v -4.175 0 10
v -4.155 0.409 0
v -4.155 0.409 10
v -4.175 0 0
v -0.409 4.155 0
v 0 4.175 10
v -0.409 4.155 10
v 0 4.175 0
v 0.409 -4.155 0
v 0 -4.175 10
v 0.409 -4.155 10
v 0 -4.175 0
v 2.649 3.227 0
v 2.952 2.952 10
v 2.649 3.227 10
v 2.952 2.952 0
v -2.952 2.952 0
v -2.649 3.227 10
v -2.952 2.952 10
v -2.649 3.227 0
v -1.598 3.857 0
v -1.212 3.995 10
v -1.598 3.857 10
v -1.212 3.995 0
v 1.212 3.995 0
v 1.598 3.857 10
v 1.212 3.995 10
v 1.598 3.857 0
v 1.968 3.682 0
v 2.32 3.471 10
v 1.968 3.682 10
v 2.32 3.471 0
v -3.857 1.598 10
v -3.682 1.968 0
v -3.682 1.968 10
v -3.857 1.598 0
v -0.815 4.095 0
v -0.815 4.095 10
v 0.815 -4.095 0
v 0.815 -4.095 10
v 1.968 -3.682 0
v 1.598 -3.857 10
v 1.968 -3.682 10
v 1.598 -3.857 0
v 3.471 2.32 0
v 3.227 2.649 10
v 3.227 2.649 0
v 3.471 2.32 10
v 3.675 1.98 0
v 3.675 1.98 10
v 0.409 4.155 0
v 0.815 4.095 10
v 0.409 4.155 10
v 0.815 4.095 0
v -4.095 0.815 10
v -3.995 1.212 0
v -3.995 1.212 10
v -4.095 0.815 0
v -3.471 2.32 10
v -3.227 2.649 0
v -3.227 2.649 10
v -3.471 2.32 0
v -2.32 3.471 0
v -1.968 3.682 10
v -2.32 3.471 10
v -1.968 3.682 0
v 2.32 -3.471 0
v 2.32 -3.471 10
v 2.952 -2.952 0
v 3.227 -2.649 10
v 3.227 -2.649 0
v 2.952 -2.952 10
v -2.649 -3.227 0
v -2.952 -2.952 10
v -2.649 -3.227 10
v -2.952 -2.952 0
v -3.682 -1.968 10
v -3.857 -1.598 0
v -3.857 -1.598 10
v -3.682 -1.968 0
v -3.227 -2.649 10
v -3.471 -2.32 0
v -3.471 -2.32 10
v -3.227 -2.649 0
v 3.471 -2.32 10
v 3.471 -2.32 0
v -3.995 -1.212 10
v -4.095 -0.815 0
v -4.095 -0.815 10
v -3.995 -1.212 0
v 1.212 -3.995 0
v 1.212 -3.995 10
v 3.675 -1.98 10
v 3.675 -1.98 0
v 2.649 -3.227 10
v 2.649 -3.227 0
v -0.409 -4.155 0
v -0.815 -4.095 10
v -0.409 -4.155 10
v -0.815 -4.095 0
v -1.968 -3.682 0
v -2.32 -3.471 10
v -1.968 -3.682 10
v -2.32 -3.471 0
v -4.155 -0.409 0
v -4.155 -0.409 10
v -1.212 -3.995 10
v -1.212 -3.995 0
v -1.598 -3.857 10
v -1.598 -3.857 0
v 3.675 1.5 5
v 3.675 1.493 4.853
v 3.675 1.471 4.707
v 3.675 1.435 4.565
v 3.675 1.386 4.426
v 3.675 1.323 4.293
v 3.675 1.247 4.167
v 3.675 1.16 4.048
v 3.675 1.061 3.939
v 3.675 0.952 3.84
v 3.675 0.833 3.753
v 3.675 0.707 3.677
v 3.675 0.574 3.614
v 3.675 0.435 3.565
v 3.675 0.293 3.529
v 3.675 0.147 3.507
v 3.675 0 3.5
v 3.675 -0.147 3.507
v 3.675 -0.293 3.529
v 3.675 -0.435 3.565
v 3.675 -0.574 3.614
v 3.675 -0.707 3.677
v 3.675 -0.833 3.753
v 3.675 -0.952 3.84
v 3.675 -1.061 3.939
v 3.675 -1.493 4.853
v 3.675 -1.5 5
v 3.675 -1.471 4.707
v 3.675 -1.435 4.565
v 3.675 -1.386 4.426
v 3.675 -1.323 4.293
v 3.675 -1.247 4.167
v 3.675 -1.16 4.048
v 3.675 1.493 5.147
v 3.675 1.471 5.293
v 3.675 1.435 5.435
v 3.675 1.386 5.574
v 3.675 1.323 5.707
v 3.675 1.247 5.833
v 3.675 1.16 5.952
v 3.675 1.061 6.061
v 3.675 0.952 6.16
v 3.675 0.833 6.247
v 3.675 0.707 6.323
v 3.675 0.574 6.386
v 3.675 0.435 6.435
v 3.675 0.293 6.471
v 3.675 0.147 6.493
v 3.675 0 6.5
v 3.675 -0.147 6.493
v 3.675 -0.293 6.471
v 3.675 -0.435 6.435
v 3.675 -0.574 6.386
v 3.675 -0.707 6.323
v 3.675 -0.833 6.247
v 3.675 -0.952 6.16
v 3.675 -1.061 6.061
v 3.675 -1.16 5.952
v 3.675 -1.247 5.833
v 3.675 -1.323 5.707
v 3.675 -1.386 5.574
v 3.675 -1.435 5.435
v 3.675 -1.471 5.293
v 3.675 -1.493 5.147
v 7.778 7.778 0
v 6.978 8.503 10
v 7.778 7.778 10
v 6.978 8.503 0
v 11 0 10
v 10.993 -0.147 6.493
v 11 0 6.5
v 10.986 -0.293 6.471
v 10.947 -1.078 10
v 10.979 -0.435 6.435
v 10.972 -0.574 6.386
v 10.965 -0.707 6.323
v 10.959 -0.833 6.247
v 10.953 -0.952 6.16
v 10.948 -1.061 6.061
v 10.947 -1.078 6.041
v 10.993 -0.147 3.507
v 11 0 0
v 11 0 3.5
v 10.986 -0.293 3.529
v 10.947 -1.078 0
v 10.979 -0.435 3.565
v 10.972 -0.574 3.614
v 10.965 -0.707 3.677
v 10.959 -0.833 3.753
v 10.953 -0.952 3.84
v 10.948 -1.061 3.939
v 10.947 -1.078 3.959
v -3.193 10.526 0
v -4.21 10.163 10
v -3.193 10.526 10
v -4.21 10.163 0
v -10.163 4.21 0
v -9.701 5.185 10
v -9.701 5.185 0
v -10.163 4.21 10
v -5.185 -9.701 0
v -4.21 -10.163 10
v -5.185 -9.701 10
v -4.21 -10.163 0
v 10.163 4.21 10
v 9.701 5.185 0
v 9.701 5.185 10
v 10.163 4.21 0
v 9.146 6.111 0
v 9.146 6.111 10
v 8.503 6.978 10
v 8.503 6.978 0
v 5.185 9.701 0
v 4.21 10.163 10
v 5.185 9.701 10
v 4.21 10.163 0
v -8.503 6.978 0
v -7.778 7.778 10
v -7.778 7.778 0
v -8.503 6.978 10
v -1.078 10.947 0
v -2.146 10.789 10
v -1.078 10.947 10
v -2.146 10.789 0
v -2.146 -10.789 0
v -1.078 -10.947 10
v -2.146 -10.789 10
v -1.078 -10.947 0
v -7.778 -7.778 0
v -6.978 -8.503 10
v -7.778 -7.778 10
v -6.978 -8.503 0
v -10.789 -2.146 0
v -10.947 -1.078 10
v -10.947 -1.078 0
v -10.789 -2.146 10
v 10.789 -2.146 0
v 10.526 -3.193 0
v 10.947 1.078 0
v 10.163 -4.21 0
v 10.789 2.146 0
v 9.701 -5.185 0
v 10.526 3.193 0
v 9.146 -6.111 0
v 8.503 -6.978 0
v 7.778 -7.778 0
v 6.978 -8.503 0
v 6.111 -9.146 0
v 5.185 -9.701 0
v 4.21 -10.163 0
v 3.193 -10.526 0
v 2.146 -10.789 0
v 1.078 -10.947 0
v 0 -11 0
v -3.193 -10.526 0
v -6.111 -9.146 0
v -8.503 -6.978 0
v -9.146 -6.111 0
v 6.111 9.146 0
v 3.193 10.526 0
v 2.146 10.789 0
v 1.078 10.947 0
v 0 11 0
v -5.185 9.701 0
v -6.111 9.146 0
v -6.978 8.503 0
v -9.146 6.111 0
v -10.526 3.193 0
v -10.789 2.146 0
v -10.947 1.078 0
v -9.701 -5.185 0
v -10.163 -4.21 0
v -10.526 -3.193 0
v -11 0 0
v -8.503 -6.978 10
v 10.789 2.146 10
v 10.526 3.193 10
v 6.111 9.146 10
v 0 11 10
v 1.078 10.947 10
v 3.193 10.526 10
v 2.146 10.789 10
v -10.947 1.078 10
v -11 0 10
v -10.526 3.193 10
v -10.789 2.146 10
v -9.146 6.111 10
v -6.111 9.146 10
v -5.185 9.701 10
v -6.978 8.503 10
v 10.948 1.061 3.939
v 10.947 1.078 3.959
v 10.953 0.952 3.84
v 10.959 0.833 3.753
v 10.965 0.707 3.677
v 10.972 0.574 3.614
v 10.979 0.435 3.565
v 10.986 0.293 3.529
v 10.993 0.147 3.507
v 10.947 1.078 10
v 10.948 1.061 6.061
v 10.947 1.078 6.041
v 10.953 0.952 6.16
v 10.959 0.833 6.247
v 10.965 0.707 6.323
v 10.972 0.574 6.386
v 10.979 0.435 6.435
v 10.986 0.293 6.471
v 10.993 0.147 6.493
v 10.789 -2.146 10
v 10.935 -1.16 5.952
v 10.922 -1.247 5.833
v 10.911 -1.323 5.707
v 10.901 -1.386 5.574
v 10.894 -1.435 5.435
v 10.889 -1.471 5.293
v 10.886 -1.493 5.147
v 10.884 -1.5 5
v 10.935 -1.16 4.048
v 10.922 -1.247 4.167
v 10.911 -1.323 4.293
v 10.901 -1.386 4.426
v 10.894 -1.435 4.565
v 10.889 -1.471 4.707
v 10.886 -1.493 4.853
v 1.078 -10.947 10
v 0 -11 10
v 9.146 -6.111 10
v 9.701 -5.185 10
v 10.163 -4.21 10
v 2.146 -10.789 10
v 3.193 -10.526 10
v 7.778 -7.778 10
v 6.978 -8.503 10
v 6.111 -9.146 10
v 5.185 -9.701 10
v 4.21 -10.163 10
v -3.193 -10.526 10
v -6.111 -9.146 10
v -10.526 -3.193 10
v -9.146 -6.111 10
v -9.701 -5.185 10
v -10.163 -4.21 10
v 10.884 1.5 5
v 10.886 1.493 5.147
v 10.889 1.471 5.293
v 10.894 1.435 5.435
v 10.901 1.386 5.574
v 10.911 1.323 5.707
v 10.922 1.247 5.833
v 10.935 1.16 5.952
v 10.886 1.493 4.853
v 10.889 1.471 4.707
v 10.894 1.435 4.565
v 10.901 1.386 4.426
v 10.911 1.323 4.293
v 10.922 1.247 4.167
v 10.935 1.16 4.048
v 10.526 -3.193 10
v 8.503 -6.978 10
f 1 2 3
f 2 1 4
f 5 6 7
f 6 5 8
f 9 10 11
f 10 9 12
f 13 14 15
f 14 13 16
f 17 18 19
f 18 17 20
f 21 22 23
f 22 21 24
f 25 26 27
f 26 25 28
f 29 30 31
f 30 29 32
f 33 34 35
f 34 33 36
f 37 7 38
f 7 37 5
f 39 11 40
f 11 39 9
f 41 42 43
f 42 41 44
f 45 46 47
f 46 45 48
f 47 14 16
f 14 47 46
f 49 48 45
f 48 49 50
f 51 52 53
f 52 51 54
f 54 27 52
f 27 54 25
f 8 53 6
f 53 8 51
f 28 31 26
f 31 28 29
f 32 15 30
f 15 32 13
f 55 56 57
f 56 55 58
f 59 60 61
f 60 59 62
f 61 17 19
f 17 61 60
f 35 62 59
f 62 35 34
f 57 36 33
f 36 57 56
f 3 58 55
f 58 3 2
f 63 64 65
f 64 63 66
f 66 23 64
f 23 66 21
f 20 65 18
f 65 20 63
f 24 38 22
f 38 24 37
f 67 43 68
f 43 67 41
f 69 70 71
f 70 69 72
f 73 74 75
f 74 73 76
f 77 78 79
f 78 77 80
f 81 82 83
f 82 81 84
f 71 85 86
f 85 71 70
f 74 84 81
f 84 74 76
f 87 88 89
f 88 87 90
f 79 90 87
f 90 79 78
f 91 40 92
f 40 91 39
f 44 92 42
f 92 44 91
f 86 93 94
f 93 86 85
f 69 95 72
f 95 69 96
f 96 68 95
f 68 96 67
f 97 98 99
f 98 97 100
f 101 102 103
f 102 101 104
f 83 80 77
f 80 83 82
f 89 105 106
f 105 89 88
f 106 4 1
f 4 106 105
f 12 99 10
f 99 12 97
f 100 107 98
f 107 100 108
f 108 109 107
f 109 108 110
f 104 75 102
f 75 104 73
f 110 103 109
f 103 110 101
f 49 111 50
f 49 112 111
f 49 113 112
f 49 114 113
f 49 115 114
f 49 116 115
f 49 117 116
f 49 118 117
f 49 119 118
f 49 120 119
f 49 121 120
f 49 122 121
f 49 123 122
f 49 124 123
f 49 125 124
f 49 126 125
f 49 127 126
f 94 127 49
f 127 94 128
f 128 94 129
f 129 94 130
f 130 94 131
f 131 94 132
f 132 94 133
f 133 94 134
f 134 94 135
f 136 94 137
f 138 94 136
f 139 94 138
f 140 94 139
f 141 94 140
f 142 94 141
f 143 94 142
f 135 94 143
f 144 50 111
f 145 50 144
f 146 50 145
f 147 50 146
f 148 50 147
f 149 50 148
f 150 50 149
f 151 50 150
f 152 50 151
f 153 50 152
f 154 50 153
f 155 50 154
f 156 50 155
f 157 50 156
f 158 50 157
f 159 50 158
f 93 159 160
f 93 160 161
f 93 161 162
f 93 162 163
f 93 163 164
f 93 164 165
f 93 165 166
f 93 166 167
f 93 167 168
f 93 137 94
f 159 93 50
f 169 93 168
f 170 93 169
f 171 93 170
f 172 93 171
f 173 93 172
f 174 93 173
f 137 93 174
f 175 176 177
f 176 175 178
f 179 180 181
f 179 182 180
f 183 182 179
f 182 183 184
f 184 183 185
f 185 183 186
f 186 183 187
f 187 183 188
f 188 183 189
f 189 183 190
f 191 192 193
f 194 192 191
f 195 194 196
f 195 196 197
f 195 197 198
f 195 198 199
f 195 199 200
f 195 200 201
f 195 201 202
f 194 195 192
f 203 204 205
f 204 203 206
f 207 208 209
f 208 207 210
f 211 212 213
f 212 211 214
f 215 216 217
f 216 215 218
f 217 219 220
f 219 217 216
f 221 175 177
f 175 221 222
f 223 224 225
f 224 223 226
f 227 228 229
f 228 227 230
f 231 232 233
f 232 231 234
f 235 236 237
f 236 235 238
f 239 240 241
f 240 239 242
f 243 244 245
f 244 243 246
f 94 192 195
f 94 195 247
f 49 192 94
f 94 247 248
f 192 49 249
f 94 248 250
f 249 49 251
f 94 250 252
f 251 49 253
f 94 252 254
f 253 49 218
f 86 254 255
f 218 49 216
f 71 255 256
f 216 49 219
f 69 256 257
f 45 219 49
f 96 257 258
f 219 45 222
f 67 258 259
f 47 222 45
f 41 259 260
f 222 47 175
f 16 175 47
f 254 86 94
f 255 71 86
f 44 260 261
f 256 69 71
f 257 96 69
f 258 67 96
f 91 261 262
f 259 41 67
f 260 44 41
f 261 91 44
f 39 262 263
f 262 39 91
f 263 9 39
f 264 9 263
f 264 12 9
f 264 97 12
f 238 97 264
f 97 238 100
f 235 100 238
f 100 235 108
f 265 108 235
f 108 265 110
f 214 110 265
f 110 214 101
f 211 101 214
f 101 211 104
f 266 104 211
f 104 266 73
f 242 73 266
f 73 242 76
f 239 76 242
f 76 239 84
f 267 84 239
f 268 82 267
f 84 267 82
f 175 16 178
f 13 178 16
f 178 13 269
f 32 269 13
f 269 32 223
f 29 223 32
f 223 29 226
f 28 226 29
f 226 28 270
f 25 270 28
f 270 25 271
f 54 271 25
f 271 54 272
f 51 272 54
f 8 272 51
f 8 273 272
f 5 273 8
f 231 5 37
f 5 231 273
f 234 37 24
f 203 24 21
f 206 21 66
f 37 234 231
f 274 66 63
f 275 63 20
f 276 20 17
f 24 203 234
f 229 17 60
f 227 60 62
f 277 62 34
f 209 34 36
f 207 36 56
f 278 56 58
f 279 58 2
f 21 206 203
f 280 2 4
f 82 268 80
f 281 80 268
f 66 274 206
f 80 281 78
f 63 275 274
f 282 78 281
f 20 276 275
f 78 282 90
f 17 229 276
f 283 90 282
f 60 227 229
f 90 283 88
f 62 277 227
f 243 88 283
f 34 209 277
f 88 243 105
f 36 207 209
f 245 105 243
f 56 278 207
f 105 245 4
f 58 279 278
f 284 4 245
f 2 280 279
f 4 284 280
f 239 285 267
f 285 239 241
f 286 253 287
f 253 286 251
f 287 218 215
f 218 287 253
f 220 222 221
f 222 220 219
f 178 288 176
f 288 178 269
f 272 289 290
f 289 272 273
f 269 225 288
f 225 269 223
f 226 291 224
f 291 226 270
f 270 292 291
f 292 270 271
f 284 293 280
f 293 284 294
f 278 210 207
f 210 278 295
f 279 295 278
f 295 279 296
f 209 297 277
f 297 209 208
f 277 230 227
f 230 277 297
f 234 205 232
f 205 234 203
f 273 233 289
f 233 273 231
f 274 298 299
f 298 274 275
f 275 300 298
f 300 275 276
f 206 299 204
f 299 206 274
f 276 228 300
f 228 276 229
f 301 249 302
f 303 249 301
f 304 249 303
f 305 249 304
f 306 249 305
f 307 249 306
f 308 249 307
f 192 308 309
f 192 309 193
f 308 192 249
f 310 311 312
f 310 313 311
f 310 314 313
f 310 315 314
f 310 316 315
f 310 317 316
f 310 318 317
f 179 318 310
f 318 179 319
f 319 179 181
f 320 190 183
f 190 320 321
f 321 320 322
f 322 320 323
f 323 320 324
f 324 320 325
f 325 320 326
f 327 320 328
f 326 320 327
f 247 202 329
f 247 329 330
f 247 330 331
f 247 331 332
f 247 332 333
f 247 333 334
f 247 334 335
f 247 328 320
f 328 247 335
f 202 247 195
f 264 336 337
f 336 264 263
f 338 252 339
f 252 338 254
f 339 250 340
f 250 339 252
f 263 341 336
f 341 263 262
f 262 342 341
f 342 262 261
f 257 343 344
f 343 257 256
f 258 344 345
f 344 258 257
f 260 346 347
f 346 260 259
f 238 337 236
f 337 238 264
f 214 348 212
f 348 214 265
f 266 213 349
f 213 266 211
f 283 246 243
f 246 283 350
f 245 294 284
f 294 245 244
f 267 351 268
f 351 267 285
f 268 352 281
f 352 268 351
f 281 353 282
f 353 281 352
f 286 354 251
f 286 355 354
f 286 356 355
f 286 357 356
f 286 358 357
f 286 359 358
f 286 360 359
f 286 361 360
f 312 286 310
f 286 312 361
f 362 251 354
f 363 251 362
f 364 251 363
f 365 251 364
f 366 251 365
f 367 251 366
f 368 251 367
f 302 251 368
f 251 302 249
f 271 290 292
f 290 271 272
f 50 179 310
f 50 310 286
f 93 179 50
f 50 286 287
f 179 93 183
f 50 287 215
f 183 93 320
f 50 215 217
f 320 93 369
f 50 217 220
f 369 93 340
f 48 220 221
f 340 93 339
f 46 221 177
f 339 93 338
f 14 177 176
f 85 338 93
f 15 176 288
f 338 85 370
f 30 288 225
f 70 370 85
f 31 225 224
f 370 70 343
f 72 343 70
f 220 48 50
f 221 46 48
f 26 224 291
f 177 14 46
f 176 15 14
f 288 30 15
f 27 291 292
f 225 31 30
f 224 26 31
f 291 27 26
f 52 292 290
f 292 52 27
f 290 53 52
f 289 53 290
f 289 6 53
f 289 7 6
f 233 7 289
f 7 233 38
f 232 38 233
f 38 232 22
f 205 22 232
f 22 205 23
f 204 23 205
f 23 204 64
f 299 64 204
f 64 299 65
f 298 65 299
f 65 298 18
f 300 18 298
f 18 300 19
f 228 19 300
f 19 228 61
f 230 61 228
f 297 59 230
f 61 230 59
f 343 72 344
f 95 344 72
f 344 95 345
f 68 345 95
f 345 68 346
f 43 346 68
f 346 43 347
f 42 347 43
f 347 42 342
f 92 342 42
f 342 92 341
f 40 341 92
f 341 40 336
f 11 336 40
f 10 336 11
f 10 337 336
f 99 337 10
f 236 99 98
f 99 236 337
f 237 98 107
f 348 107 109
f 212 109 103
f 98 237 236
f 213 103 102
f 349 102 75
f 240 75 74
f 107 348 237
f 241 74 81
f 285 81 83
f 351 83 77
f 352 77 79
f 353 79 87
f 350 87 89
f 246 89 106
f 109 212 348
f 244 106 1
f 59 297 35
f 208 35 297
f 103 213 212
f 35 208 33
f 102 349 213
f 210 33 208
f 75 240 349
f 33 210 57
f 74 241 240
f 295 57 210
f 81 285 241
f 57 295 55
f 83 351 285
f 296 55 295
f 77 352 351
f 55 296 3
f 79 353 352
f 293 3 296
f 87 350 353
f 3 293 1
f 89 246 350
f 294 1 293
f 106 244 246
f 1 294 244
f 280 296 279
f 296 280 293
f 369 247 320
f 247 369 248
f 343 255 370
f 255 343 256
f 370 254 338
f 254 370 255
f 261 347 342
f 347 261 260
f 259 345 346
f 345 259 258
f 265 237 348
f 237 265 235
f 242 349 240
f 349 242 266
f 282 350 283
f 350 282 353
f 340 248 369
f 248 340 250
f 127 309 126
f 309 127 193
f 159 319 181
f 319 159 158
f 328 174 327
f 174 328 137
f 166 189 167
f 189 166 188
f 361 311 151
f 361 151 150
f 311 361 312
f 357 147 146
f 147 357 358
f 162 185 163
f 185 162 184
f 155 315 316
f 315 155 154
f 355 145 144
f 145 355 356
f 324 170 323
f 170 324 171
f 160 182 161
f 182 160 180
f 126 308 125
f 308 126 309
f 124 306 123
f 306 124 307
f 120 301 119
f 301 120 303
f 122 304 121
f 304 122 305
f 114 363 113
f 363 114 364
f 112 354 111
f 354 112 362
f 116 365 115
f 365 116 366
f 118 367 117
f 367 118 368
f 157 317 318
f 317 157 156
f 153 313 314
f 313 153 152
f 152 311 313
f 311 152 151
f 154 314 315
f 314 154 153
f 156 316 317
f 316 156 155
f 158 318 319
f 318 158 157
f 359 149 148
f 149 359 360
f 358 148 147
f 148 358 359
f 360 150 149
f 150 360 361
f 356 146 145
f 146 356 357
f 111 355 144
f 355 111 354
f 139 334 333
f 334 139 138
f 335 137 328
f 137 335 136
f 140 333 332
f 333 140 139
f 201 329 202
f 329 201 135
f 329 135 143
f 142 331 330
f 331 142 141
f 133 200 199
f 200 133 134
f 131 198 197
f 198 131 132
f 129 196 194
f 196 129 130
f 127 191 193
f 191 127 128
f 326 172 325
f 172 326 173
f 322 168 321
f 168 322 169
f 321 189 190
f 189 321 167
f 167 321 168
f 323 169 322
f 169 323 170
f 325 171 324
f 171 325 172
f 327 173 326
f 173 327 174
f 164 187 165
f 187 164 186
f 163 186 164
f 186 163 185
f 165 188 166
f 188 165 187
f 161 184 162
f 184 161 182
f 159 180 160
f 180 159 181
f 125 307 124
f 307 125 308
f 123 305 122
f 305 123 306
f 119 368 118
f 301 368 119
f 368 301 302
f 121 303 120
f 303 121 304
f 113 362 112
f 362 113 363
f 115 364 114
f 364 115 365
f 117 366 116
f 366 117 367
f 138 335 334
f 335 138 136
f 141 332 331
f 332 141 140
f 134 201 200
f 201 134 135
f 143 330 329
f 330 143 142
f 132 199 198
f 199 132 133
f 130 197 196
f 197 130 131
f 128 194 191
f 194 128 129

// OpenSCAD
// file: parameters.scad
// =============================================================================
// Gen-BU — nightly 2026-10-10 (physics_scorer, honest magpylib watts)
// New pole/coil ratio on a much bigger ring: twelve narrow 26.4° bobbins (r 52–82 mm, 13.5 mm build, 8.1 mm copper) under 8 poles pushed out to R66, so each coil spans 120° electrical with a short mean turn while the poles sit 52 mm apart (less pole-to-pole leakage) and move faster. 8p/12c was dismissed on earlier nights at 3.2 W because it was only scanned on the R50 ring; tonight it climbs steadily with ring radius (R50 3.39 → R57 4.58 → R59.5 5.18 → R66 6.08 W scan). Diametric Ø5 assists turned out to LOWER this layout, so none are fitted. A ring this big no longer fits a one-plate layout with disc endbells, so the endbells become two crossed 44 mm bar bearing bridges, which is what keeps it on one 410 mm plate.
// Clocking 0 deg (magnets N facing S) + D-flat keyed bore + index notch + flip-symmetric hole map.
// Windable 2-piece bobbin; turns = physics_scorer turns_fit; copper only between flanges.
// Steel back-iron: 2× Ø158 × 4.76 mm (3/16") mild-steel discs (steel_backiron_disc.dxf); magnets sit ON the steel
// (through-pockets) -> score with --back-iron. Night 2026-10-10.
// =============================================================================
topology            = "dual_rotor";

// --- Wire / winding (physics_scorer winding-fit) -------------------------------
wire_awg            = 26;
wire_od             = 0.45;     // insulated OD mm (bare 0.405)
fill_realistic      = 0.65;     // insulated-wire area / window (DENSE layered wind with a jig; scorer cap 0.65)
turns               = 446;       // = physics_scorer turns_fit (do NOT raise)
coil_former_type    = "bobbin";
coil_core_inset     = 13.50;     // radial copper build: hub = copper boundary inset by this
wind_build_axial    = 0.0;      // nothing proud of the flanges
wind_build_radial   = 0.0;

// --- Bobbin (base + lid) ---------------------------------------------------------
coil_id_r           = 52.00;    // copper boundary sector
coil_od_r           = 82.00;
span_deg            = 26.36;    // = pitch - 2*asin((wall+0.85)/coil_id_r) -> >=1.2 mm stator web
former_web          = 8.10;     // copper height between flanges (TALL copper: steel keeps Bz up)
flange_t            = 0.80;     // >= 0.8 mm FDM wall rule (tall winds push on the flanges)
wall                = 0.80;     // flange lip beyond copper
former_bare_h       = former_web + 2 * flange_t;
coil_envelope_h     = former_bare_h + 2 * wind_build_axial;
tab_w               = 7.0;
tab_len             = 7.0;
tab_h               = former_bare_h / 2;
pin_d               = 1.9;      // 1.75 mm filament locating pin
coil_mount_r        = coil_od_r + 0.2 + 4.0;
lead_y              = 1.6;
lead_slot_w         = 0.9;
lead_groove_d       = 0.6;

// --- Gap -------------------------------------------------------------------------
run_clear           = 0.50;     // rotor face -> flange
gap_spacer_h        = run_clear + wind_build_axial;
m2m                 = coil_envelope_h + 2 * run_clear;   // rotor face to rotor face (= gap_sleeve length)

// --- Stator ----------------------------------------------------------------------
coil_stations       = 12;
bay_clear           = 0.25;
stator_thick        = former_bare_h;                        // bobbins flush both faces
stator_od           = 182;
shaft_clear_stator  = 14.0;     // stator is static; gap sleeve OD 12 spins inside

// --- Rotor(s) --------------------------------------------------------------------
magnet_Br           = 1.43;     // N52
magnet_d_large      = 20.0;
magnet_h_large      = 5.0;      // one O20x5 per pocket
magnet_h_small      = 5.0;      // unused: no O5 pockets in this kit
halbach_magnetisation = "none";  // NO O5 assist magnets in this kit (scan: they lower the 4-pole score)
rotor_b_same_axis   = true;     // same-index magnets share one axis: N faces S across the gap
large_pocket_d      = 20.3;
small_pocket_d      = 5.3;
pocket_h            = 5.00;     // THROUGH the carrier: magnet back face sits on the steel disc (FLUSH seat: carrier = magnet height, magnet face level with the rotor face)
large_n             = 8;
R_large             = 66.0;
small_r_list        = [];       // no O5 pockets
carrier_od          = 158.0;
carrier_thick       = pocket_h;
hub_h               = 12.0;     // > steel_t + insert: radial set-screw clears the steel
hub_od              = 24.0;     // slim hub so the M4 brace rods fit at R~18 inside the coil ring
hub_insert_d        = 4.0;      // M3 heat-set insert, radial, bears on the D-flat
rotor_b_offset_deg  = 0.0;      // CLOCKING: magnets directly opposite
shaft_key           = "dflat";
dflat_depth         = 0.5;      // 8 mm shaft with 0.5 mm flat (7.5 across flat)
index_notch_d       = 3.0;

// --- Steel back-iron (buyable laser-cut) -------------------------------------------
steel_t             = 4.76;      // mild steel thickness (image method ignores it; sized from steel_flux.py so the return path stays well below saturation)
steel_center_hole   = 26.0;     // slips over the rotor hub (OD 24)
steel_od            = carrier_od;   // steel disc OD = rotor carrier OD

// --- Modular MAX interface ----------------------------------------------------------
shaft_bore          = 8.35;
dflat_x             = 4.0 - dflat_depth + (shaft_bore - 8.0) / 2;
bearing_d           = 21.85;
bearing_h           = 7.2;
m3_clear            = 3.5;
bolt_r_inner        = 30.0;     // M3 steel-disc clamp bolts (inside the magnet ring)
bolt_n_inner        = 4;
bolt_inner_angles   = [0, 90, 180, 270];
bolt_r_outer        = 44.0;     // second M3 steel-disc clamp ring
bolt_outer_angles   = [67.5, 112.5, 247.5, 292.5];
flange_bolt_r       = 85.0;     // frame rods: OUTSIDE the rotor OD (rotors spin inside them)
flange_bolt_n       = 4;
flange_bolt_offset  = 45.00;    // between coil stations -> never cuts a lead groove/tab
brace_r             = 18.0;
brace_d             = 4.3;      // temporary M4 jack rods (assembly only)
brace_n             = 4;
brace_angles        = [45, 135, 225, 315];          // flip-symmetric

spacer_pad_od       = 14.0;
spacer_pad_id       = m3_clear;
endbell_od          = 180.0;
endbell_thick       = 8.0;
endbell_shaft_clear = 10.0;
collar_h            = 10.0;
standoff_od         = 9.0;
frame_standoff_h    = run_clear + carrier_thick + hub_h + collar_h + 2.0;
sleeve_od           = 12.0;
plate_max_mm        = 410;

$fn = 64;
// main file
// Gen-BU — shaft collar with D-flat bore (set screw bears on the flat); print x4
include <parameters.scad>;
$fn = 64;
// D-flat keyed bore: flat faces +X (angle 0 = magnet pocket 0 = index notch)
module dflat_bore(h) {
    intersection() {
        cylinder(d=shaft_bore, h=h);
        translate([-shaft_bore, -shaft_bore, 0]) cube([shaft_bore + dflat_x, 2*shaft_bore, h]);
    }
}

od = 22; h = collar_h; set_d = 3.0;
difference() {
    cylinder(d=od, h=h);
    translate([0, 0, -0.1]) dflat_bore(h + 0.2);
    translate([0, 0, h/2]) rotate([0, 90, 0]) cylinder(d=set_d, h=od);
}
